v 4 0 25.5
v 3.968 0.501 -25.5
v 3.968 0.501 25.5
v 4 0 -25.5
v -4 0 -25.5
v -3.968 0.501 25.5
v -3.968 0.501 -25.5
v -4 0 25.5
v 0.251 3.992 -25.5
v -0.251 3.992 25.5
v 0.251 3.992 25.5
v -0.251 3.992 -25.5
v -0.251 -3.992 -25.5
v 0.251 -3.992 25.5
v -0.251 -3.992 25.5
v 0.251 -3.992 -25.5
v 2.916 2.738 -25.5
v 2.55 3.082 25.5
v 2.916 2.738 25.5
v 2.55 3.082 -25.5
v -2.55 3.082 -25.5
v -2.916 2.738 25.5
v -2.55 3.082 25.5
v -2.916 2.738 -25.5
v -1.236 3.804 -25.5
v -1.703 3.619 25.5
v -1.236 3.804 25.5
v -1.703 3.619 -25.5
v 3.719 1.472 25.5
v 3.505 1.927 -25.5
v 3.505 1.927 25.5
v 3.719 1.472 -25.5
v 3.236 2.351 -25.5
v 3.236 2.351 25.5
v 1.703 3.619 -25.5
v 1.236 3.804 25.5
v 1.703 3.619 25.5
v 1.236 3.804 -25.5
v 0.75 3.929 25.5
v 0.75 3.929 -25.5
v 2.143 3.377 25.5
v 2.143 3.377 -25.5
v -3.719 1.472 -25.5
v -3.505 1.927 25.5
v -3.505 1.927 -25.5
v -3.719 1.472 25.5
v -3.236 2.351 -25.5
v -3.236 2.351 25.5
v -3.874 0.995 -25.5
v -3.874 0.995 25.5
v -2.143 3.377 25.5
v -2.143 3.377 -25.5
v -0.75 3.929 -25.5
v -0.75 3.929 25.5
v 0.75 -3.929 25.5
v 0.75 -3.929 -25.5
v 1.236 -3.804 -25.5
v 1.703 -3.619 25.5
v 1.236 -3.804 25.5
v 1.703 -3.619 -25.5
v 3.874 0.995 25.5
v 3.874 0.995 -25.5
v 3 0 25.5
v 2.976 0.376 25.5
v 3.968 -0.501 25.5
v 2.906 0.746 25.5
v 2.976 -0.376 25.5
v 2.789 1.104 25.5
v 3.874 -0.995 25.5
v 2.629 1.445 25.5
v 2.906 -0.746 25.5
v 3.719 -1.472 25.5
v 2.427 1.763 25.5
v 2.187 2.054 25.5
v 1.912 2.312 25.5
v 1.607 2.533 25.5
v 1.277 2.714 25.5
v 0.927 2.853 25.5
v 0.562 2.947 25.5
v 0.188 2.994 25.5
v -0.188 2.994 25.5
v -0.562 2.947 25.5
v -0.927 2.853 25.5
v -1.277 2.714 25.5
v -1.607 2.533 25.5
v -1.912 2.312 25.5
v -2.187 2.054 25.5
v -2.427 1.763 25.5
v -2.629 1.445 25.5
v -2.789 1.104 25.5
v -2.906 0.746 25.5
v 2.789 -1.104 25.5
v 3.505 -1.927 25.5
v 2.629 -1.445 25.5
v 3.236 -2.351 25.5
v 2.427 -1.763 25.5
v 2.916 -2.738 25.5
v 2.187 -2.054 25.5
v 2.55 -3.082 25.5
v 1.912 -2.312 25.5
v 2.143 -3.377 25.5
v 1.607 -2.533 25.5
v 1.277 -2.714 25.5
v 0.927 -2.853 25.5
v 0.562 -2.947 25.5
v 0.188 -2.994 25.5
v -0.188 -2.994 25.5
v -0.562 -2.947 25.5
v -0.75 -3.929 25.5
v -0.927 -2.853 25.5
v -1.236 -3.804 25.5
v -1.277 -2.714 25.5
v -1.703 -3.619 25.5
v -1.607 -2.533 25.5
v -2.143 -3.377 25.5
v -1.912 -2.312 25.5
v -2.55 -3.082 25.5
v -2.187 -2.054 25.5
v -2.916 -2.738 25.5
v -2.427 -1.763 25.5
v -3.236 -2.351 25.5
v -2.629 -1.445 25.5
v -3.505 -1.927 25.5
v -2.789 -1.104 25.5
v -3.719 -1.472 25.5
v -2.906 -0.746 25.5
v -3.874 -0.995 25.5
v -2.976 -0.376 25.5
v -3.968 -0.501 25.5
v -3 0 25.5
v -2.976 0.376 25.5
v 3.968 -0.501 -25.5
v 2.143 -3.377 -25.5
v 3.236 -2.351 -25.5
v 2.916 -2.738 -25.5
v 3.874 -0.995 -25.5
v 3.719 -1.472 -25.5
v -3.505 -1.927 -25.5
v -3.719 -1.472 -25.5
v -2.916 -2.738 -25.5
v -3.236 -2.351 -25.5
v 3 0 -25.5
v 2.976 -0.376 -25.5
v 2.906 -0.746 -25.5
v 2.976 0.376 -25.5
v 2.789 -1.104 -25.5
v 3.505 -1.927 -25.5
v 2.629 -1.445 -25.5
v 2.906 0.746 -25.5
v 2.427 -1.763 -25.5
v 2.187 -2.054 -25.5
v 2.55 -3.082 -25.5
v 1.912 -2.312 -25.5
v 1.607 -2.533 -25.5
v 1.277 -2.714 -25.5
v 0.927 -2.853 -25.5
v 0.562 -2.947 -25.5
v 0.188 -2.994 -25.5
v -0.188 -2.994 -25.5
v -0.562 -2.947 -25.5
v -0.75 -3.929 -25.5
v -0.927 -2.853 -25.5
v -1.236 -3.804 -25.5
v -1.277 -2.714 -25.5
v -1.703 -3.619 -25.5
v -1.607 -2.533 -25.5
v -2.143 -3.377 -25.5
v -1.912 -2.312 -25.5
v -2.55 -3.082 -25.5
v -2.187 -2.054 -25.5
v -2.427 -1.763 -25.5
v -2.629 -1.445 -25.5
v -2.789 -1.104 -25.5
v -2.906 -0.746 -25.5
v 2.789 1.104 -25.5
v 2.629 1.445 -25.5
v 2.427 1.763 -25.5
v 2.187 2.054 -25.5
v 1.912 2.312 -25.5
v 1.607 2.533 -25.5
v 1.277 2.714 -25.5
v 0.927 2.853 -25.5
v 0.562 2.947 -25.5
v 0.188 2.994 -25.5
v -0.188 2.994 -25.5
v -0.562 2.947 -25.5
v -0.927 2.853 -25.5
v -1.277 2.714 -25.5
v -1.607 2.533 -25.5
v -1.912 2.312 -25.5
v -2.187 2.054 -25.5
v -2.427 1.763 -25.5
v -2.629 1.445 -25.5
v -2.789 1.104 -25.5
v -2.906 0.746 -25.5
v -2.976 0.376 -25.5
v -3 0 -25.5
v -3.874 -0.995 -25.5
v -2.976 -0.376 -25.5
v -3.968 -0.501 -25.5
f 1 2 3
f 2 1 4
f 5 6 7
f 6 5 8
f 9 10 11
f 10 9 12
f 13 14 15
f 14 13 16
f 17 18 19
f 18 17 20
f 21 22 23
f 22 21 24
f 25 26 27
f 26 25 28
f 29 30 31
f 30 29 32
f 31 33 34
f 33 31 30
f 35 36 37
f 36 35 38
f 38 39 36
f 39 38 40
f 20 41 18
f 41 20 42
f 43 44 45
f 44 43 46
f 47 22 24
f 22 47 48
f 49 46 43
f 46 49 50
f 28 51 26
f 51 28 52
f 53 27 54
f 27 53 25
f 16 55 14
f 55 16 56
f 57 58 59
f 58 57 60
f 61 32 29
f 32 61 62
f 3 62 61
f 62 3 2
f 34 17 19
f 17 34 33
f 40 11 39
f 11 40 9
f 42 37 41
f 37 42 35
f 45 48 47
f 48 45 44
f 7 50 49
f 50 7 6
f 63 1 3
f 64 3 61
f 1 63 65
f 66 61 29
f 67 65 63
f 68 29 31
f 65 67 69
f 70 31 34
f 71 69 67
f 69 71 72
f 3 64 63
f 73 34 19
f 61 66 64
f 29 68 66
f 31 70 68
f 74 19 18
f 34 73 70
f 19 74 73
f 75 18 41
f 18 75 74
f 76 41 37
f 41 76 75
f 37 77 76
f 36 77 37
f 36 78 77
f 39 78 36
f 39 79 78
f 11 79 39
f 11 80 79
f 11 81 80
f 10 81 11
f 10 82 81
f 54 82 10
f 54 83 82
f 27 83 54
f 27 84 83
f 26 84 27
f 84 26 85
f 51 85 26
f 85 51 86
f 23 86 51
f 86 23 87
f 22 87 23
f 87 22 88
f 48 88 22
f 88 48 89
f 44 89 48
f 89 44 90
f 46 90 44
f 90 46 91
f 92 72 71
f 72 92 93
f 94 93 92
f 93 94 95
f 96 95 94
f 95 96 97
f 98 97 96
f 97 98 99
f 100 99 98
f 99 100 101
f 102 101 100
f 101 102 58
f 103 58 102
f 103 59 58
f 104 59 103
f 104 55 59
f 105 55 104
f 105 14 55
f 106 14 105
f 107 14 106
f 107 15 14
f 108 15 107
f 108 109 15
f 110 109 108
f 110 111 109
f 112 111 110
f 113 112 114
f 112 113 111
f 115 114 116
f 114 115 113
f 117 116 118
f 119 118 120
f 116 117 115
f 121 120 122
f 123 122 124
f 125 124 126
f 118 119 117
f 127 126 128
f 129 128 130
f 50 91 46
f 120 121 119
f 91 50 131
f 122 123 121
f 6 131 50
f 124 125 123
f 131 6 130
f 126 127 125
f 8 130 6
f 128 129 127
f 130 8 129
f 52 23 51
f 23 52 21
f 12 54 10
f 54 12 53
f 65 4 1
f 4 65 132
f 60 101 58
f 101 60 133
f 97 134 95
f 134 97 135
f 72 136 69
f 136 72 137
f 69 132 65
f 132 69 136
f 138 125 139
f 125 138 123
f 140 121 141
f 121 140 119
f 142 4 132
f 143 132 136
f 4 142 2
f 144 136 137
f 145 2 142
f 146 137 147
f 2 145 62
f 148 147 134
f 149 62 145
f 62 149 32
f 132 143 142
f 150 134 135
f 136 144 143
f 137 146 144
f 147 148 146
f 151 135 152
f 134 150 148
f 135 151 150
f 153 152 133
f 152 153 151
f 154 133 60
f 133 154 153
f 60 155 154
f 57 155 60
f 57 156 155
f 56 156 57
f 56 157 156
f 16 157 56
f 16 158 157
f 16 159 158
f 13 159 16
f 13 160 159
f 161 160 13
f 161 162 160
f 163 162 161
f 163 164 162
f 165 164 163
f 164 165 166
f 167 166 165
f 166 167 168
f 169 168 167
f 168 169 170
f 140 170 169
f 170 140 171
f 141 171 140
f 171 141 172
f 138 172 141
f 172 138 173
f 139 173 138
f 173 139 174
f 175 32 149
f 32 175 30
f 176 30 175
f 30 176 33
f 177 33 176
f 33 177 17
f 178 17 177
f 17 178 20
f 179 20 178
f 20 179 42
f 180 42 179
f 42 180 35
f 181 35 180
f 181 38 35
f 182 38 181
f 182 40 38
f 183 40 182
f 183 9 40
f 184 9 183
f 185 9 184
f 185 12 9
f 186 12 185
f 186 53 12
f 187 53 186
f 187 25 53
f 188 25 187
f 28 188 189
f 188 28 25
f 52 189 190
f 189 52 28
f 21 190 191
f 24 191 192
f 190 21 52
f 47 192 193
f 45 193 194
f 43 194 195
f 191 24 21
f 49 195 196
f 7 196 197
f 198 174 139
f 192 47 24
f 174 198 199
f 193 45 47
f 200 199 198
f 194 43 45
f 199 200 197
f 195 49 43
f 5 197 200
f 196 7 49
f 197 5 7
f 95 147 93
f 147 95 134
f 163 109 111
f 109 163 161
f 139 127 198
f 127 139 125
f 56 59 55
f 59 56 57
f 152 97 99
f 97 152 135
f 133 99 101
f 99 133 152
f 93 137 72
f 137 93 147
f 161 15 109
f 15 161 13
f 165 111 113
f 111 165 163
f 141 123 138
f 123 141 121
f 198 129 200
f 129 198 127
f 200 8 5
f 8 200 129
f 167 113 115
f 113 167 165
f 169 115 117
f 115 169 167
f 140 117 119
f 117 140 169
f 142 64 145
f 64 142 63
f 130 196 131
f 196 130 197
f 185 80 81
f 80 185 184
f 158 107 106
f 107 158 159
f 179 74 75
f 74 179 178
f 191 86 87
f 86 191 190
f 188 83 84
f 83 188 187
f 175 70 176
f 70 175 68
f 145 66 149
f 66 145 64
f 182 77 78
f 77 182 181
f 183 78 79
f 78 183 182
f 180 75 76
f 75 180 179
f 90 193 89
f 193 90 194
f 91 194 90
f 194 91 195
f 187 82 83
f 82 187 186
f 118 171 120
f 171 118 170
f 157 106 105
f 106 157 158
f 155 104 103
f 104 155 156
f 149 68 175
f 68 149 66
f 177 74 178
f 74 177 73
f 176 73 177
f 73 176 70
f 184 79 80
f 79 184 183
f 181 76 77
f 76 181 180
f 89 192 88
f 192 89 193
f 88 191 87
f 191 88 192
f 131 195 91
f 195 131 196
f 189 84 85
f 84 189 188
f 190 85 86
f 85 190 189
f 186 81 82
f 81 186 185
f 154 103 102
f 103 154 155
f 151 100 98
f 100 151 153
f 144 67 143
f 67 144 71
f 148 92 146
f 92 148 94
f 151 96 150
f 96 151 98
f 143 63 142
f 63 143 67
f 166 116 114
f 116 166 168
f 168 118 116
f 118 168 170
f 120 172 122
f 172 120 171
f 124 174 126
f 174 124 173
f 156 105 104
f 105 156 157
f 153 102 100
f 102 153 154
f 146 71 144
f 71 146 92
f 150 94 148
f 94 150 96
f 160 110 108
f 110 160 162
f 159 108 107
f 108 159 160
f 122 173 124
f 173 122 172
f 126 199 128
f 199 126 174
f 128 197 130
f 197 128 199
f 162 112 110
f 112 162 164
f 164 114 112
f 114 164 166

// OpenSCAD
$fn = 50;


difference() {
	union() {
		translate(v = [0, 0, -25.5000000000]) {
			cylinder(h = 51, r = 4.0000000000);
		}
	}
	union() {
		translate(v = [0, 0, -100.0000000000]) {
			cylinder(h = 200, r = 3);
		}
	}
}
